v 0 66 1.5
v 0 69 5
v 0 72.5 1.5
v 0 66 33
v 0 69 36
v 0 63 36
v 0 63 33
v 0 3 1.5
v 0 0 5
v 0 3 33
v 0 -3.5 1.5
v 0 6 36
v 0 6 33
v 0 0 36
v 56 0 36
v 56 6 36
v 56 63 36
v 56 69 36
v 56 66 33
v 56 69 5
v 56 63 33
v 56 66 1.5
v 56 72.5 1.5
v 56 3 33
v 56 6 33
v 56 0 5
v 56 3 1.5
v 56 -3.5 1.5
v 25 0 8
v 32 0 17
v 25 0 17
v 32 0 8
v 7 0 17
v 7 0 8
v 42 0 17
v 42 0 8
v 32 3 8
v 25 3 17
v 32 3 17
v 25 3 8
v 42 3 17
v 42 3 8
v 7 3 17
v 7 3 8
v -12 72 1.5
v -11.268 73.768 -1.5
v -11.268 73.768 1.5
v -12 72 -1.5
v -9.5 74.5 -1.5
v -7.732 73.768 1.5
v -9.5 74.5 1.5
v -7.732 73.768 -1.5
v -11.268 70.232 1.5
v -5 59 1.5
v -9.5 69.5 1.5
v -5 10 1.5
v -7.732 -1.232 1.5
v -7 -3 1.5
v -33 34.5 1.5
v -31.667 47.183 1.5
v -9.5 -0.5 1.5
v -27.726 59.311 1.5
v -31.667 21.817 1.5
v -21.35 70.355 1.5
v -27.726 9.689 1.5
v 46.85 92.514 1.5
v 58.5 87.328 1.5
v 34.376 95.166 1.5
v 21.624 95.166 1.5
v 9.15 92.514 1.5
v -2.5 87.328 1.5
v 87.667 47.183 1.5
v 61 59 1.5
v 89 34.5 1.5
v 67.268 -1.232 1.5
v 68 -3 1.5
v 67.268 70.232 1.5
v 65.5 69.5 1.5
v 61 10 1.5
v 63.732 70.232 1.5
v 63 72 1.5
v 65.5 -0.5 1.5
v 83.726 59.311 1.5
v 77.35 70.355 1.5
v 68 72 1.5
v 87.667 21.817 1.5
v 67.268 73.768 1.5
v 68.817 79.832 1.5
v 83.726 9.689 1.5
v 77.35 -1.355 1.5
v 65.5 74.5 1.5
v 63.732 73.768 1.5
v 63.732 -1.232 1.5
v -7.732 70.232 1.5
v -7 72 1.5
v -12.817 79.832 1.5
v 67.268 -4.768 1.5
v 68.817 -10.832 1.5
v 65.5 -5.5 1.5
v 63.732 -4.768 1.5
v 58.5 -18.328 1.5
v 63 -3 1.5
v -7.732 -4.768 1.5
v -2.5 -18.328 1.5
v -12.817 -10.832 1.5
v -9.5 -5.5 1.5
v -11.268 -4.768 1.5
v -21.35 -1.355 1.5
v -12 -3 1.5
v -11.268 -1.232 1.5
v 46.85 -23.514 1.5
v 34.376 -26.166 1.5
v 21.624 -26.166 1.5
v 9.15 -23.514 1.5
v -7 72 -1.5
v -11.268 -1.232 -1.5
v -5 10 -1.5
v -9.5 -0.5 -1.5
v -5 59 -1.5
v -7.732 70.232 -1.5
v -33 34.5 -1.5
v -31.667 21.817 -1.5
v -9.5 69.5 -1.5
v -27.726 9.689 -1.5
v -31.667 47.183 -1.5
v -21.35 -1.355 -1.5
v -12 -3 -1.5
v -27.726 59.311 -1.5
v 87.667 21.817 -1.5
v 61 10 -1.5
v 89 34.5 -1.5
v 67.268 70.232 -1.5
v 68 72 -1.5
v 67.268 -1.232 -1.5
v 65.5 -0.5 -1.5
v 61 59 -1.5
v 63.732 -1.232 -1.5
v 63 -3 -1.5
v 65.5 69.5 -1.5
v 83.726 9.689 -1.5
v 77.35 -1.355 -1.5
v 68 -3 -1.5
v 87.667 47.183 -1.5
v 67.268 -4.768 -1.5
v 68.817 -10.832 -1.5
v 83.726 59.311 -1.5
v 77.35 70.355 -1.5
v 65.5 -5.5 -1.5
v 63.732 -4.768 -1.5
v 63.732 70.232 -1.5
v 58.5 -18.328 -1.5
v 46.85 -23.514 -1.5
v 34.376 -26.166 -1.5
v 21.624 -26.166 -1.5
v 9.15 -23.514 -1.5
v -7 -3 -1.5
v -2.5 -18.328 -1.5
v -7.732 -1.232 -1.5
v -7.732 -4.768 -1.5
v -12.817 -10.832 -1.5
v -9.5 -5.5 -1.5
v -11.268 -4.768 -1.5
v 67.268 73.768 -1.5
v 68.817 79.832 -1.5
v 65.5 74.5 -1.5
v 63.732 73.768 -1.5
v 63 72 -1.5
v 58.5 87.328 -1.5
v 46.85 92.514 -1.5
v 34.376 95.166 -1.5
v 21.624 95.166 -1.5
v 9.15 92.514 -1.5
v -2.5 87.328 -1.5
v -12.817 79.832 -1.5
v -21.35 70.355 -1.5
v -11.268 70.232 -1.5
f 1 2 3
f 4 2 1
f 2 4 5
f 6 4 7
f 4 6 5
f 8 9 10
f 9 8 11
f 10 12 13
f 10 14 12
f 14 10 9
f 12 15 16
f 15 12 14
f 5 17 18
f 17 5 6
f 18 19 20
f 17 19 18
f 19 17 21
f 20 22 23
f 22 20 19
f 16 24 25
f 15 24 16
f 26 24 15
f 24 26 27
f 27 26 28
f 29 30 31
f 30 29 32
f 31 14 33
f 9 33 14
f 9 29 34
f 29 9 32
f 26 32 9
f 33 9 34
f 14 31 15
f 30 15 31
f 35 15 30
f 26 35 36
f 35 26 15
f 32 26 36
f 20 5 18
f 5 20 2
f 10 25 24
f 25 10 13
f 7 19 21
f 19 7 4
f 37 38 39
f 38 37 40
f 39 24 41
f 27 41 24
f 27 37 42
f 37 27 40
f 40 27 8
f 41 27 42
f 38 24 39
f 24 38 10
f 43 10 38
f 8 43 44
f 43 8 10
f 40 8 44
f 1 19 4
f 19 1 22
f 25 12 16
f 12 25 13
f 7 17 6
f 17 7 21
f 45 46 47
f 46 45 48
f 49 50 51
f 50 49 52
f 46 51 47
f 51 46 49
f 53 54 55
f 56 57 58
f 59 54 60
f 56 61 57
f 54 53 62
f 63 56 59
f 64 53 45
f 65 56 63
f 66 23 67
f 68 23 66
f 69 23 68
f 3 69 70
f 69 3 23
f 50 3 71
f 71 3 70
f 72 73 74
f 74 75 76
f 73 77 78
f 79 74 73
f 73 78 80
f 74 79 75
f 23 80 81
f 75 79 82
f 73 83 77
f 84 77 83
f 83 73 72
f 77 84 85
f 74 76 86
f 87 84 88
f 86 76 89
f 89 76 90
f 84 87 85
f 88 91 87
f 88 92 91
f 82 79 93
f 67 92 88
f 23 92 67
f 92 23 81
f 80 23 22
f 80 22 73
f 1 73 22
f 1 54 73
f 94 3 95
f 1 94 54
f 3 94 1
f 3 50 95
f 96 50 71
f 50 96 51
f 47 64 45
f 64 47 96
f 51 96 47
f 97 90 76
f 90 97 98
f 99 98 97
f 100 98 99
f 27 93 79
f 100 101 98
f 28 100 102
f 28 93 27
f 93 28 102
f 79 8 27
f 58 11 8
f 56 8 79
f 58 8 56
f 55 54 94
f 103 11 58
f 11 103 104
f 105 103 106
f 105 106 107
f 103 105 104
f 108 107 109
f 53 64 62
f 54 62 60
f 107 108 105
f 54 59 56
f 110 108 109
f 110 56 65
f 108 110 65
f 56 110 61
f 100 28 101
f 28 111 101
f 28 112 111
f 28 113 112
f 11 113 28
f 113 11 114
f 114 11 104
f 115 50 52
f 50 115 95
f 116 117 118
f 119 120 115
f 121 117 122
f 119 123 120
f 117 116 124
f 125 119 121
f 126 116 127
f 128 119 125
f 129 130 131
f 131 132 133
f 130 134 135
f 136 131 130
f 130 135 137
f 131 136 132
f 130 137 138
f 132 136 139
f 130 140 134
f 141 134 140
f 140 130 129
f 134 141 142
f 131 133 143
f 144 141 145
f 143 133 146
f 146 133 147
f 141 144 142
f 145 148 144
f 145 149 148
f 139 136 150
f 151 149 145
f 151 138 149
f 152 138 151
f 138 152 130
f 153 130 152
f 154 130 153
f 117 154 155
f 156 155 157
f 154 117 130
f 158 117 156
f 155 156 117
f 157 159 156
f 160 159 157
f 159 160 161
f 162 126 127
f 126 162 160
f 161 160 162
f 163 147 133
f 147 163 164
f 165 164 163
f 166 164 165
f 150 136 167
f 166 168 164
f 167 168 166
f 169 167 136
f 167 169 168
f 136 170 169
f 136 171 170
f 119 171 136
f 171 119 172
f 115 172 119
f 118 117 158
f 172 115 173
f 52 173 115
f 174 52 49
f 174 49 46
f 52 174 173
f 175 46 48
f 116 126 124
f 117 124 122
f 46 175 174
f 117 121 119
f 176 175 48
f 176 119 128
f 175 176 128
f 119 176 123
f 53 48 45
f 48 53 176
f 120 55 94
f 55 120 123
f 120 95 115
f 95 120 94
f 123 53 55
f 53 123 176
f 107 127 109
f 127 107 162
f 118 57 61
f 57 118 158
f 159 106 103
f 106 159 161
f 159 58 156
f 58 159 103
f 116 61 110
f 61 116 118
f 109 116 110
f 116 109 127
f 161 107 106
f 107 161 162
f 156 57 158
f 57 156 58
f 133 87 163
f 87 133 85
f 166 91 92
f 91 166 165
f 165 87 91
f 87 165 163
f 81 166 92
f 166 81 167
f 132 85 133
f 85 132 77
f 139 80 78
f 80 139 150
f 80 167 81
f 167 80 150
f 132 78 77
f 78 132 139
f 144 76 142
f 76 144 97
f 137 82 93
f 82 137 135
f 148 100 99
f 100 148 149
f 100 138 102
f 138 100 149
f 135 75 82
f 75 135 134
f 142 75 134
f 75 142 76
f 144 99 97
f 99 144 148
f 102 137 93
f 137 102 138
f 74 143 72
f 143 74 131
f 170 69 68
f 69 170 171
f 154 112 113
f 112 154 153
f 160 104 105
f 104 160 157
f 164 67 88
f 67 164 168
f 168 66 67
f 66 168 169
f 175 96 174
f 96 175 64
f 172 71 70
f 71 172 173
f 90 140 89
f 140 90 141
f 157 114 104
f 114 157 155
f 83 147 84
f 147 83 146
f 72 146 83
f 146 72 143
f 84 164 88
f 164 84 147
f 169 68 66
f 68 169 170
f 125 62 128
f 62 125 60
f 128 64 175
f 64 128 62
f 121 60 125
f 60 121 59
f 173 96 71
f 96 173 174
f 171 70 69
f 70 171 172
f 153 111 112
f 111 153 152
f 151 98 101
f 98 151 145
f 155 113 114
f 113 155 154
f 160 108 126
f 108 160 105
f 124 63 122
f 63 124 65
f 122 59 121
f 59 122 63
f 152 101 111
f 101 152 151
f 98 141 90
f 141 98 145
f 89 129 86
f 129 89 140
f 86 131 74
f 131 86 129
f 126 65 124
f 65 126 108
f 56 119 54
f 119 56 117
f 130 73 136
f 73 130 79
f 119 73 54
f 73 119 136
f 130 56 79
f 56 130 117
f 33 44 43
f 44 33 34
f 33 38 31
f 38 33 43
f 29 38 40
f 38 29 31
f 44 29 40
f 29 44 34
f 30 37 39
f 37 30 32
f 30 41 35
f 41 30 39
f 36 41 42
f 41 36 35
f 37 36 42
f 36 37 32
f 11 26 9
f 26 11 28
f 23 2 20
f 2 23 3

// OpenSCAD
/* [RaspberryPI external box dimensions] */
// External X dimension
pareti_dimX = 56;
// External Y dimension
pareti_dimY = 69;
// External Z dimension
pareti_dimZ = 36;
// wall thickness
sp_raspPI = 3;

/* [Vesa base dimensions] */
// Thickness
sp_Vesa = 3;
// diameter
dia_Vesa = 122;
// screw diameter
dia_viti = 5;
// X distance between screw
posX_viti = 75;
// Y distance between screw
posY_viti = 75;

module raspPI(){ // disegno pareti con alette superiori (box for raspberryPI - two L walls)
    difference(){
    cube([pareti_dimX,pareti_dimY,pareti_dimZ]);  // dimensioni esterne (external dimensions)  
    translate([0,sp_raspPI,0])cube([pareti_dimX,pareti_dimY-sp_raspPI*2,pareti_dimZ-sp_raspPI]); // vuoto per raspPI (hole for raspberryPI case)
    translate([0,sp_raspPI*2,0])cube([pareti_dimX,pareti_dimY-sp_raspPI*4,pareti_dimZ]); // vuoto per alette superiori (hole for raspberryPI case)
        }     
     }

module fori_porte(){ // dimensioni fori per porte HDMI e Jack (positioning and hole for hdmi and jack)
    union(){
        translate([7,0,8])cube([18,sp_raspPI,9]);
        translate([7+18+7,0,8])cube([10,sp_raspPI,9]);
        }
    
    }

module vite(){ // singola vite (one screw)
    cylinder(sp_Vesa, dia_viti/2, dia_viti/2);     
    }
    
module viti_Vesa(){ // fori per fissaggio Vesa (four holes for Vesa screw)
    translate([posX_viti/2,posY_viti/2,0])vite();
    mirror([0,1,0])translate([posX_viti/2,posY_viti/2,0])vite();
    mirror([1,0,0])union(){
    translate([posX_viti/2,posY_viti/2,0])vite();
    mirror([0,1,0])translate([posX_viti/2,posY_viti/2,0])vite();
    }
    }

module cuneo(){ //smusso (chamfer)
rotate([90,0,90])
linear_extrude(pareti_dimX)
polygon(points=[[0,0],[-5,0],[0,5]]);
}


module vuotopiastra(){ //vuoto rettangolare (hole in the middle of the base)
    cube([pareti_dimX+10,pareti_dimY-20,sp_Vesa],true);
    
    }

// MAIN

difference(){ // pareti forate (walls for raspberryPI with holes)
    raspPI();
    color("red")fori_porte();
    }
    

difference(){ //piastra Vesa forata (Vesa base with screw holes)
    translate([pareti_dimX/2,pareti_dimY/2,-sp_Vesa/2])cylinder(sp_Vesa,dia_Vesa/2,dia_Vesa/2); //piatto Vesa
    translate([pareti_dimX/2,pareti_dimY/2,-sp_Vesa/2])viti_Vesa();
    translate([pareti_dimX/2,pareti_dimY/2,0])vuotopiastra();
}

cuneo(); //rinforzo alla base (positioning chamfer)
translate([0,pareti_dimY,0])mirror([0,1,0])cuneo();
